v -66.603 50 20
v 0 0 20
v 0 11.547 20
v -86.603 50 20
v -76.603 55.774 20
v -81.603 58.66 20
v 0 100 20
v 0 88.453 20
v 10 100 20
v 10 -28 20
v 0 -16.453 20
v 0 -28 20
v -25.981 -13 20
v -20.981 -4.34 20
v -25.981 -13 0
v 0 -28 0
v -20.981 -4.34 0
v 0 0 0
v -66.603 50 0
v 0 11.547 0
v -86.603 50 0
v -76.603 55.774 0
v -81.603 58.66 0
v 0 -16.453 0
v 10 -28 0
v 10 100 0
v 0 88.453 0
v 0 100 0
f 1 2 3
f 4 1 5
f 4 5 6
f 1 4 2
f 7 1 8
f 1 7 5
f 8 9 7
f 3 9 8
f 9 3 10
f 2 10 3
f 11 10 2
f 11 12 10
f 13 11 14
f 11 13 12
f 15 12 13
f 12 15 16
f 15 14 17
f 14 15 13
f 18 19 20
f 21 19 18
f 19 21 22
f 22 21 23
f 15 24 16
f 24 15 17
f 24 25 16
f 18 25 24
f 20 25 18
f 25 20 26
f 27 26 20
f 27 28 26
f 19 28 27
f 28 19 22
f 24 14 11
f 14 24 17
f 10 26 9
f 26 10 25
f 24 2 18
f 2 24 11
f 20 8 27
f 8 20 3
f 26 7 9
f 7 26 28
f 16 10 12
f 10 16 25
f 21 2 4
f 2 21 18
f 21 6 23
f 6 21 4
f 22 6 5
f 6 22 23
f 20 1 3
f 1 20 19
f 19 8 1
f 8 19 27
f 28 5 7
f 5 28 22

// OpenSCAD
/* Laptop display stand */
$fn = 100;

leg_l = 100;
leg_w = 10;
h = 20;
laptop_w = 18.0; //16.5;
laptop_l = 30;

translate([0, -(leg_w + laptop_w), 0])
rotate([0, 0, 60])
cube([leg_w, laptop_l, h]);

translate([0, -(leg_w + laptop_w), 0])
cube([leg_w, leg_l + leg_w + laptop_w, h]);

rotate([0, 0, 60])
cube([leg_w, leg_l, h]);

translate([0, leg_l, 0])
rotate([0, 0, 120])
translate([-10, 0, 0])
cube([leg_w, leg_l - leg_w, h]);
